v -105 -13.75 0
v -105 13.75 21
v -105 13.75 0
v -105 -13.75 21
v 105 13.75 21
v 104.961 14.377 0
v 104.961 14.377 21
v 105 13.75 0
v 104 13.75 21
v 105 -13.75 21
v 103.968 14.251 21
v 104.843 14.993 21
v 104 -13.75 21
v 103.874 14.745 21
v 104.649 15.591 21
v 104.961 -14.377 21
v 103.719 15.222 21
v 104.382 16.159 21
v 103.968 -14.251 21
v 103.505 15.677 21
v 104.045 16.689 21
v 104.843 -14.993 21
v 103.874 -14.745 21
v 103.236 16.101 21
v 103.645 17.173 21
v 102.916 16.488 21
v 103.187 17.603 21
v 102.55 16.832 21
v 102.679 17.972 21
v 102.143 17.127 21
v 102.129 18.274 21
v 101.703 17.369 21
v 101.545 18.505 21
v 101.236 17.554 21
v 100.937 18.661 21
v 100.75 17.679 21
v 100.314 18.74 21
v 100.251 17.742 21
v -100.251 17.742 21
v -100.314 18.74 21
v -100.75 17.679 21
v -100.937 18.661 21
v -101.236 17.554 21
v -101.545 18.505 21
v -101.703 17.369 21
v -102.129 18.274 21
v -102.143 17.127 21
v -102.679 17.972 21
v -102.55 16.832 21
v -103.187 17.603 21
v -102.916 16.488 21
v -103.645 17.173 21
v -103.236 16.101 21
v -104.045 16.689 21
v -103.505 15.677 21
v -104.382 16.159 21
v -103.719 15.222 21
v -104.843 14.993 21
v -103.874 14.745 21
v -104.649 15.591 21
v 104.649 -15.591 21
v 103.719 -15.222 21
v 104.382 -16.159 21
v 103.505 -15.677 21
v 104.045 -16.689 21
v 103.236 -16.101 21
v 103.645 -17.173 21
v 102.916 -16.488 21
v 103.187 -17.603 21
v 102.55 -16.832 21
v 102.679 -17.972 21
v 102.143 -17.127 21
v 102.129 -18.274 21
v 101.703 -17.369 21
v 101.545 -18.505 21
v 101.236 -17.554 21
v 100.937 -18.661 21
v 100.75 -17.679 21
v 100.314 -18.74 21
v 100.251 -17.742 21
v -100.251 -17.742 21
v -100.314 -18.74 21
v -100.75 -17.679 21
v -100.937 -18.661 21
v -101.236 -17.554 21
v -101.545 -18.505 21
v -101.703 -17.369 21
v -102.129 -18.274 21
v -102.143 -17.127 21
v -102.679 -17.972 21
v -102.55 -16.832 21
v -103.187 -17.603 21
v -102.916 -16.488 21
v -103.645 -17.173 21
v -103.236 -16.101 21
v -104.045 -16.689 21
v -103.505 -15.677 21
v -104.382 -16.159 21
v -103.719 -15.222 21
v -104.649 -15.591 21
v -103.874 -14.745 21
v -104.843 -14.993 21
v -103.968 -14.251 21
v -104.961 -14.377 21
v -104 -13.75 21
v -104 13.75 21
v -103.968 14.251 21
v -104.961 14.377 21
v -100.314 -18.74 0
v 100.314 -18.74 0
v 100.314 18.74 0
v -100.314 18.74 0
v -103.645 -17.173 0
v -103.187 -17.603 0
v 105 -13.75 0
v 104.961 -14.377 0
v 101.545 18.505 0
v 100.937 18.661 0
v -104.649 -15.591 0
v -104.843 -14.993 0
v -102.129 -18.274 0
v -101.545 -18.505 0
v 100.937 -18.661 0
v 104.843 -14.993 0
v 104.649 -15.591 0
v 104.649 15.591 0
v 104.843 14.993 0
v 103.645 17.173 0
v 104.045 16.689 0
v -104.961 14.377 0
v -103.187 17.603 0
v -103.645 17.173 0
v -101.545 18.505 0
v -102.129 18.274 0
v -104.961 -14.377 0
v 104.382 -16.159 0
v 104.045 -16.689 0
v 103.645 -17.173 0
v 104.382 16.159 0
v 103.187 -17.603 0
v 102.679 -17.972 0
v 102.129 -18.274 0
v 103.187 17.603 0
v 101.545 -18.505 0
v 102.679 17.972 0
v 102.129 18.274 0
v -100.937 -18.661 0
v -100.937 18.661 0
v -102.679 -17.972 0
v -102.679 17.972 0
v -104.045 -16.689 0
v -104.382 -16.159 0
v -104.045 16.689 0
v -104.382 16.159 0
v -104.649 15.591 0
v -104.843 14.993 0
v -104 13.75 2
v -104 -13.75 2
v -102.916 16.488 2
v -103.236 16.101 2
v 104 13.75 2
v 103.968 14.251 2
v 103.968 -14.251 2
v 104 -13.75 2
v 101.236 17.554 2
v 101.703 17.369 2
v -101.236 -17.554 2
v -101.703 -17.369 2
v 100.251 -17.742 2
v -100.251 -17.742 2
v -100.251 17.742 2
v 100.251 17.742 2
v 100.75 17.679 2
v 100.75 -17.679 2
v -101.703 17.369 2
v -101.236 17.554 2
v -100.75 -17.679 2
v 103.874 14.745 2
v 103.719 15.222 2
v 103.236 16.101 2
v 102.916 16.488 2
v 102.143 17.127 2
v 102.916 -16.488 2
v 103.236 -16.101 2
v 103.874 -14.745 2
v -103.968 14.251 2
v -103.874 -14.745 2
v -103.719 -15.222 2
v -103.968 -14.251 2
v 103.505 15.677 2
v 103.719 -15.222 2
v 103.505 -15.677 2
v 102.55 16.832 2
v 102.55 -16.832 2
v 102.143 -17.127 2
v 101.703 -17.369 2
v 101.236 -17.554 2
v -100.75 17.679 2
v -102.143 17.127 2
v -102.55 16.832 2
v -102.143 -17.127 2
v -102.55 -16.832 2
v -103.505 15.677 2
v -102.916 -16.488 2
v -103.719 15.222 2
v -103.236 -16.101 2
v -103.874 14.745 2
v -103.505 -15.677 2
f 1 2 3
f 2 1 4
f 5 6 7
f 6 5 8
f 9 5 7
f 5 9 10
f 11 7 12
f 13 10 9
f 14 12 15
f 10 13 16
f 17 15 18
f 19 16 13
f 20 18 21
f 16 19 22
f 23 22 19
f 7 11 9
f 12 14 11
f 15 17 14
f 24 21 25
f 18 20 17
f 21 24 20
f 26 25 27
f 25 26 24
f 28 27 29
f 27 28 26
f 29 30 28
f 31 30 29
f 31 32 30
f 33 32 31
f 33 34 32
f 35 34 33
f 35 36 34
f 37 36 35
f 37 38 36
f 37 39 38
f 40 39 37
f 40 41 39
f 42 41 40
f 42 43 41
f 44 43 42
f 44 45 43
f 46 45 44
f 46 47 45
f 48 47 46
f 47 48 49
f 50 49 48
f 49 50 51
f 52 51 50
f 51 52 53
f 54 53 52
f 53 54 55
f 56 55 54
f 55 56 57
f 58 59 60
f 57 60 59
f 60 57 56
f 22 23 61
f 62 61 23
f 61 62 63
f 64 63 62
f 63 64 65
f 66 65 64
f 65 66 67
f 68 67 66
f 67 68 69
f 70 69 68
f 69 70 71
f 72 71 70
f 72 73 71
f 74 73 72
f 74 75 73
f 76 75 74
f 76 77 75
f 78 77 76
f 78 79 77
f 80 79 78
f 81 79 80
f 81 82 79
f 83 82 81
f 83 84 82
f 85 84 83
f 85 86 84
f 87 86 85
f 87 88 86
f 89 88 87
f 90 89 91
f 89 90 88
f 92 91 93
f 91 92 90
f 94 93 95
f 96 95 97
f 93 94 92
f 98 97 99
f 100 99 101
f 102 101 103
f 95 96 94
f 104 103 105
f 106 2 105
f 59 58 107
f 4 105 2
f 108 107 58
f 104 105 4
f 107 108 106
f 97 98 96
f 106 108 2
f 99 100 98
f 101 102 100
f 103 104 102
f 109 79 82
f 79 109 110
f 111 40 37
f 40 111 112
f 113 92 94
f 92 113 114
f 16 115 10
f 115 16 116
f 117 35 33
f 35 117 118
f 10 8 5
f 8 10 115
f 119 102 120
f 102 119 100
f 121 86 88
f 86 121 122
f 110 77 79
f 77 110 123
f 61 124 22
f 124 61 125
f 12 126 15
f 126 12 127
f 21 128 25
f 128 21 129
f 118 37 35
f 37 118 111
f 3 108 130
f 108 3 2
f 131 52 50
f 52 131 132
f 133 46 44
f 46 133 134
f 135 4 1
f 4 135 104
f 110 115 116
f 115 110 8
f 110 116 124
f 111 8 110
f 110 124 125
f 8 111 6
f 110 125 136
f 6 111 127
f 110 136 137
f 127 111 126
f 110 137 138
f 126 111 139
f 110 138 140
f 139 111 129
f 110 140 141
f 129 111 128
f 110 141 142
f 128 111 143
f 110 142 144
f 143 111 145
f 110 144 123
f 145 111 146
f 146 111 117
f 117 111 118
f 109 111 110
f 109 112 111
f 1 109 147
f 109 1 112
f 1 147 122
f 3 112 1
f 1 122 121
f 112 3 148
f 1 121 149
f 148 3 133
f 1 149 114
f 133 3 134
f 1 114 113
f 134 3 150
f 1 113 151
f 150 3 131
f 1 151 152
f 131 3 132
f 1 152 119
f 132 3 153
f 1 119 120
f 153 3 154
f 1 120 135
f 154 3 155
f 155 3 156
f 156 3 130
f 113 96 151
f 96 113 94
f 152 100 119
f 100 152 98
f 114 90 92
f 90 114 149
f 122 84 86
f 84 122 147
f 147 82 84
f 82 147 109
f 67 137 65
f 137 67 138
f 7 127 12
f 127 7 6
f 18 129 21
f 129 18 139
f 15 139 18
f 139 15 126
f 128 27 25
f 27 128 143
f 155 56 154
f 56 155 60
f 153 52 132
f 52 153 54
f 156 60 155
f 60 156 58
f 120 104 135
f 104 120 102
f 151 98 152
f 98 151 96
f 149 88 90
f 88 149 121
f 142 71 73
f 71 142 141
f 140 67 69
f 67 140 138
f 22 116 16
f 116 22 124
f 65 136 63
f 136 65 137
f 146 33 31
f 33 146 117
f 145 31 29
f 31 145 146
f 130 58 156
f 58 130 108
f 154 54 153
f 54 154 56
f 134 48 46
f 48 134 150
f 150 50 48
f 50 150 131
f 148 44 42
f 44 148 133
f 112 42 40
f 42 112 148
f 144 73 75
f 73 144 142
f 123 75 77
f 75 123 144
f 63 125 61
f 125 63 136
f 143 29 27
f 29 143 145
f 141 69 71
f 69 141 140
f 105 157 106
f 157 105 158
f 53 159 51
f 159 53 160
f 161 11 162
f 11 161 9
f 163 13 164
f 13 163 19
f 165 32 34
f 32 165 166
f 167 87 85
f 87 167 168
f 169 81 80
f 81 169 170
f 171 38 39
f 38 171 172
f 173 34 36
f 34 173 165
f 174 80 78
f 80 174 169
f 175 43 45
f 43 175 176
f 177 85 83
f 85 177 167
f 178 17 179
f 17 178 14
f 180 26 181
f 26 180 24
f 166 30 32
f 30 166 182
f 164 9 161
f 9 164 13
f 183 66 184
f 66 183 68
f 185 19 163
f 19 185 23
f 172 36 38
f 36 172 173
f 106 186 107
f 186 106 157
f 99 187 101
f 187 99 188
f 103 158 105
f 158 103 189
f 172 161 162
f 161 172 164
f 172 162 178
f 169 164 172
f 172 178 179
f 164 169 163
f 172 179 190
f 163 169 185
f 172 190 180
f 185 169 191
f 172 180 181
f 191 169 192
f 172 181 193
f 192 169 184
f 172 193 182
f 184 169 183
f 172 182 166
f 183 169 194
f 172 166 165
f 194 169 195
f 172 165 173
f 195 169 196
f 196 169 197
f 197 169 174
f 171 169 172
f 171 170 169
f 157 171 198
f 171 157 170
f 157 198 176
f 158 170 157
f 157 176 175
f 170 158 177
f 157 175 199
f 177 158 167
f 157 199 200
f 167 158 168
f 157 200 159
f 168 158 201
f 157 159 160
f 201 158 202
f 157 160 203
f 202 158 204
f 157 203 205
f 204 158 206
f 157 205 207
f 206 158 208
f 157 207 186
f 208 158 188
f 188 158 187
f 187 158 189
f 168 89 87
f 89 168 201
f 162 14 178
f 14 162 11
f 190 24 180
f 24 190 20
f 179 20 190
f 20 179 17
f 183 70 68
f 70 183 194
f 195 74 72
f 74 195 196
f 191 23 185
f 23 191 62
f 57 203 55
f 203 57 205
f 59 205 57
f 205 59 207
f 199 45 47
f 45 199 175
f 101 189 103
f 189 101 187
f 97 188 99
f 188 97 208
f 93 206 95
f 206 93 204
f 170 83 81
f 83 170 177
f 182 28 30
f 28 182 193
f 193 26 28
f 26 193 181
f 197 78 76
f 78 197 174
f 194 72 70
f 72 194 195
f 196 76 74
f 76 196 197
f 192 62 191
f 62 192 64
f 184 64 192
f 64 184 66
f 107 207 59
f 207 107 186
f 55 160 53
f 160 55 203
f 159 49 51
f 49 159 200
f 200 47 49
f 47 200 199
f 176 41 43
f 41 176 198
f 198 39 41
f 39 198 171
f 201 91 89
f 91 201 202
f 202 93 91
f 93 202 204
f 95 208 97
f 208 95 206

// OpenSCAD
$fn = 50;


difference() {
	union() {
		hull() {
			translate(v = [-100.0000000000, 13.7500000000, 0]) {
				cylinder(h = 21, r = 5);
			}
			translate(v = [100.0000000000, 13.7500000000, 0]) {
				cylinder(h = 21, r = 5);
			}
			translate(v = [-100.0000000000, -13.7500000000, 0]) {
				cylinder(h = 21, r = 5);
			}
			translate(v = [100.0000000000, -13.7500000000, 0]) {
				cylinder(h = 21, r = 5);
			}
		}
	}
	union() {
		translate(v = [0, 0, 2]) {
			hull() {
				translate(v = [-100.0000000000, 13.7500000000, 0]) {
					cylinder(h = 19, r = 4);
				}
				translate(v = [100.0000000000, 13.7500000000, 0]) {
					cylinder(h = 19, r = 4);
				}
				translate(v = [-100.0000000000, -13.7500000000, 0]) {
					cylinder(h = 19, r = 4);
				}
				translate(v = [100.0000000000, -13.7500000000, 0]) {
					cylinder(h = 19, r = 4);
				}
			}
		}
	}
}
